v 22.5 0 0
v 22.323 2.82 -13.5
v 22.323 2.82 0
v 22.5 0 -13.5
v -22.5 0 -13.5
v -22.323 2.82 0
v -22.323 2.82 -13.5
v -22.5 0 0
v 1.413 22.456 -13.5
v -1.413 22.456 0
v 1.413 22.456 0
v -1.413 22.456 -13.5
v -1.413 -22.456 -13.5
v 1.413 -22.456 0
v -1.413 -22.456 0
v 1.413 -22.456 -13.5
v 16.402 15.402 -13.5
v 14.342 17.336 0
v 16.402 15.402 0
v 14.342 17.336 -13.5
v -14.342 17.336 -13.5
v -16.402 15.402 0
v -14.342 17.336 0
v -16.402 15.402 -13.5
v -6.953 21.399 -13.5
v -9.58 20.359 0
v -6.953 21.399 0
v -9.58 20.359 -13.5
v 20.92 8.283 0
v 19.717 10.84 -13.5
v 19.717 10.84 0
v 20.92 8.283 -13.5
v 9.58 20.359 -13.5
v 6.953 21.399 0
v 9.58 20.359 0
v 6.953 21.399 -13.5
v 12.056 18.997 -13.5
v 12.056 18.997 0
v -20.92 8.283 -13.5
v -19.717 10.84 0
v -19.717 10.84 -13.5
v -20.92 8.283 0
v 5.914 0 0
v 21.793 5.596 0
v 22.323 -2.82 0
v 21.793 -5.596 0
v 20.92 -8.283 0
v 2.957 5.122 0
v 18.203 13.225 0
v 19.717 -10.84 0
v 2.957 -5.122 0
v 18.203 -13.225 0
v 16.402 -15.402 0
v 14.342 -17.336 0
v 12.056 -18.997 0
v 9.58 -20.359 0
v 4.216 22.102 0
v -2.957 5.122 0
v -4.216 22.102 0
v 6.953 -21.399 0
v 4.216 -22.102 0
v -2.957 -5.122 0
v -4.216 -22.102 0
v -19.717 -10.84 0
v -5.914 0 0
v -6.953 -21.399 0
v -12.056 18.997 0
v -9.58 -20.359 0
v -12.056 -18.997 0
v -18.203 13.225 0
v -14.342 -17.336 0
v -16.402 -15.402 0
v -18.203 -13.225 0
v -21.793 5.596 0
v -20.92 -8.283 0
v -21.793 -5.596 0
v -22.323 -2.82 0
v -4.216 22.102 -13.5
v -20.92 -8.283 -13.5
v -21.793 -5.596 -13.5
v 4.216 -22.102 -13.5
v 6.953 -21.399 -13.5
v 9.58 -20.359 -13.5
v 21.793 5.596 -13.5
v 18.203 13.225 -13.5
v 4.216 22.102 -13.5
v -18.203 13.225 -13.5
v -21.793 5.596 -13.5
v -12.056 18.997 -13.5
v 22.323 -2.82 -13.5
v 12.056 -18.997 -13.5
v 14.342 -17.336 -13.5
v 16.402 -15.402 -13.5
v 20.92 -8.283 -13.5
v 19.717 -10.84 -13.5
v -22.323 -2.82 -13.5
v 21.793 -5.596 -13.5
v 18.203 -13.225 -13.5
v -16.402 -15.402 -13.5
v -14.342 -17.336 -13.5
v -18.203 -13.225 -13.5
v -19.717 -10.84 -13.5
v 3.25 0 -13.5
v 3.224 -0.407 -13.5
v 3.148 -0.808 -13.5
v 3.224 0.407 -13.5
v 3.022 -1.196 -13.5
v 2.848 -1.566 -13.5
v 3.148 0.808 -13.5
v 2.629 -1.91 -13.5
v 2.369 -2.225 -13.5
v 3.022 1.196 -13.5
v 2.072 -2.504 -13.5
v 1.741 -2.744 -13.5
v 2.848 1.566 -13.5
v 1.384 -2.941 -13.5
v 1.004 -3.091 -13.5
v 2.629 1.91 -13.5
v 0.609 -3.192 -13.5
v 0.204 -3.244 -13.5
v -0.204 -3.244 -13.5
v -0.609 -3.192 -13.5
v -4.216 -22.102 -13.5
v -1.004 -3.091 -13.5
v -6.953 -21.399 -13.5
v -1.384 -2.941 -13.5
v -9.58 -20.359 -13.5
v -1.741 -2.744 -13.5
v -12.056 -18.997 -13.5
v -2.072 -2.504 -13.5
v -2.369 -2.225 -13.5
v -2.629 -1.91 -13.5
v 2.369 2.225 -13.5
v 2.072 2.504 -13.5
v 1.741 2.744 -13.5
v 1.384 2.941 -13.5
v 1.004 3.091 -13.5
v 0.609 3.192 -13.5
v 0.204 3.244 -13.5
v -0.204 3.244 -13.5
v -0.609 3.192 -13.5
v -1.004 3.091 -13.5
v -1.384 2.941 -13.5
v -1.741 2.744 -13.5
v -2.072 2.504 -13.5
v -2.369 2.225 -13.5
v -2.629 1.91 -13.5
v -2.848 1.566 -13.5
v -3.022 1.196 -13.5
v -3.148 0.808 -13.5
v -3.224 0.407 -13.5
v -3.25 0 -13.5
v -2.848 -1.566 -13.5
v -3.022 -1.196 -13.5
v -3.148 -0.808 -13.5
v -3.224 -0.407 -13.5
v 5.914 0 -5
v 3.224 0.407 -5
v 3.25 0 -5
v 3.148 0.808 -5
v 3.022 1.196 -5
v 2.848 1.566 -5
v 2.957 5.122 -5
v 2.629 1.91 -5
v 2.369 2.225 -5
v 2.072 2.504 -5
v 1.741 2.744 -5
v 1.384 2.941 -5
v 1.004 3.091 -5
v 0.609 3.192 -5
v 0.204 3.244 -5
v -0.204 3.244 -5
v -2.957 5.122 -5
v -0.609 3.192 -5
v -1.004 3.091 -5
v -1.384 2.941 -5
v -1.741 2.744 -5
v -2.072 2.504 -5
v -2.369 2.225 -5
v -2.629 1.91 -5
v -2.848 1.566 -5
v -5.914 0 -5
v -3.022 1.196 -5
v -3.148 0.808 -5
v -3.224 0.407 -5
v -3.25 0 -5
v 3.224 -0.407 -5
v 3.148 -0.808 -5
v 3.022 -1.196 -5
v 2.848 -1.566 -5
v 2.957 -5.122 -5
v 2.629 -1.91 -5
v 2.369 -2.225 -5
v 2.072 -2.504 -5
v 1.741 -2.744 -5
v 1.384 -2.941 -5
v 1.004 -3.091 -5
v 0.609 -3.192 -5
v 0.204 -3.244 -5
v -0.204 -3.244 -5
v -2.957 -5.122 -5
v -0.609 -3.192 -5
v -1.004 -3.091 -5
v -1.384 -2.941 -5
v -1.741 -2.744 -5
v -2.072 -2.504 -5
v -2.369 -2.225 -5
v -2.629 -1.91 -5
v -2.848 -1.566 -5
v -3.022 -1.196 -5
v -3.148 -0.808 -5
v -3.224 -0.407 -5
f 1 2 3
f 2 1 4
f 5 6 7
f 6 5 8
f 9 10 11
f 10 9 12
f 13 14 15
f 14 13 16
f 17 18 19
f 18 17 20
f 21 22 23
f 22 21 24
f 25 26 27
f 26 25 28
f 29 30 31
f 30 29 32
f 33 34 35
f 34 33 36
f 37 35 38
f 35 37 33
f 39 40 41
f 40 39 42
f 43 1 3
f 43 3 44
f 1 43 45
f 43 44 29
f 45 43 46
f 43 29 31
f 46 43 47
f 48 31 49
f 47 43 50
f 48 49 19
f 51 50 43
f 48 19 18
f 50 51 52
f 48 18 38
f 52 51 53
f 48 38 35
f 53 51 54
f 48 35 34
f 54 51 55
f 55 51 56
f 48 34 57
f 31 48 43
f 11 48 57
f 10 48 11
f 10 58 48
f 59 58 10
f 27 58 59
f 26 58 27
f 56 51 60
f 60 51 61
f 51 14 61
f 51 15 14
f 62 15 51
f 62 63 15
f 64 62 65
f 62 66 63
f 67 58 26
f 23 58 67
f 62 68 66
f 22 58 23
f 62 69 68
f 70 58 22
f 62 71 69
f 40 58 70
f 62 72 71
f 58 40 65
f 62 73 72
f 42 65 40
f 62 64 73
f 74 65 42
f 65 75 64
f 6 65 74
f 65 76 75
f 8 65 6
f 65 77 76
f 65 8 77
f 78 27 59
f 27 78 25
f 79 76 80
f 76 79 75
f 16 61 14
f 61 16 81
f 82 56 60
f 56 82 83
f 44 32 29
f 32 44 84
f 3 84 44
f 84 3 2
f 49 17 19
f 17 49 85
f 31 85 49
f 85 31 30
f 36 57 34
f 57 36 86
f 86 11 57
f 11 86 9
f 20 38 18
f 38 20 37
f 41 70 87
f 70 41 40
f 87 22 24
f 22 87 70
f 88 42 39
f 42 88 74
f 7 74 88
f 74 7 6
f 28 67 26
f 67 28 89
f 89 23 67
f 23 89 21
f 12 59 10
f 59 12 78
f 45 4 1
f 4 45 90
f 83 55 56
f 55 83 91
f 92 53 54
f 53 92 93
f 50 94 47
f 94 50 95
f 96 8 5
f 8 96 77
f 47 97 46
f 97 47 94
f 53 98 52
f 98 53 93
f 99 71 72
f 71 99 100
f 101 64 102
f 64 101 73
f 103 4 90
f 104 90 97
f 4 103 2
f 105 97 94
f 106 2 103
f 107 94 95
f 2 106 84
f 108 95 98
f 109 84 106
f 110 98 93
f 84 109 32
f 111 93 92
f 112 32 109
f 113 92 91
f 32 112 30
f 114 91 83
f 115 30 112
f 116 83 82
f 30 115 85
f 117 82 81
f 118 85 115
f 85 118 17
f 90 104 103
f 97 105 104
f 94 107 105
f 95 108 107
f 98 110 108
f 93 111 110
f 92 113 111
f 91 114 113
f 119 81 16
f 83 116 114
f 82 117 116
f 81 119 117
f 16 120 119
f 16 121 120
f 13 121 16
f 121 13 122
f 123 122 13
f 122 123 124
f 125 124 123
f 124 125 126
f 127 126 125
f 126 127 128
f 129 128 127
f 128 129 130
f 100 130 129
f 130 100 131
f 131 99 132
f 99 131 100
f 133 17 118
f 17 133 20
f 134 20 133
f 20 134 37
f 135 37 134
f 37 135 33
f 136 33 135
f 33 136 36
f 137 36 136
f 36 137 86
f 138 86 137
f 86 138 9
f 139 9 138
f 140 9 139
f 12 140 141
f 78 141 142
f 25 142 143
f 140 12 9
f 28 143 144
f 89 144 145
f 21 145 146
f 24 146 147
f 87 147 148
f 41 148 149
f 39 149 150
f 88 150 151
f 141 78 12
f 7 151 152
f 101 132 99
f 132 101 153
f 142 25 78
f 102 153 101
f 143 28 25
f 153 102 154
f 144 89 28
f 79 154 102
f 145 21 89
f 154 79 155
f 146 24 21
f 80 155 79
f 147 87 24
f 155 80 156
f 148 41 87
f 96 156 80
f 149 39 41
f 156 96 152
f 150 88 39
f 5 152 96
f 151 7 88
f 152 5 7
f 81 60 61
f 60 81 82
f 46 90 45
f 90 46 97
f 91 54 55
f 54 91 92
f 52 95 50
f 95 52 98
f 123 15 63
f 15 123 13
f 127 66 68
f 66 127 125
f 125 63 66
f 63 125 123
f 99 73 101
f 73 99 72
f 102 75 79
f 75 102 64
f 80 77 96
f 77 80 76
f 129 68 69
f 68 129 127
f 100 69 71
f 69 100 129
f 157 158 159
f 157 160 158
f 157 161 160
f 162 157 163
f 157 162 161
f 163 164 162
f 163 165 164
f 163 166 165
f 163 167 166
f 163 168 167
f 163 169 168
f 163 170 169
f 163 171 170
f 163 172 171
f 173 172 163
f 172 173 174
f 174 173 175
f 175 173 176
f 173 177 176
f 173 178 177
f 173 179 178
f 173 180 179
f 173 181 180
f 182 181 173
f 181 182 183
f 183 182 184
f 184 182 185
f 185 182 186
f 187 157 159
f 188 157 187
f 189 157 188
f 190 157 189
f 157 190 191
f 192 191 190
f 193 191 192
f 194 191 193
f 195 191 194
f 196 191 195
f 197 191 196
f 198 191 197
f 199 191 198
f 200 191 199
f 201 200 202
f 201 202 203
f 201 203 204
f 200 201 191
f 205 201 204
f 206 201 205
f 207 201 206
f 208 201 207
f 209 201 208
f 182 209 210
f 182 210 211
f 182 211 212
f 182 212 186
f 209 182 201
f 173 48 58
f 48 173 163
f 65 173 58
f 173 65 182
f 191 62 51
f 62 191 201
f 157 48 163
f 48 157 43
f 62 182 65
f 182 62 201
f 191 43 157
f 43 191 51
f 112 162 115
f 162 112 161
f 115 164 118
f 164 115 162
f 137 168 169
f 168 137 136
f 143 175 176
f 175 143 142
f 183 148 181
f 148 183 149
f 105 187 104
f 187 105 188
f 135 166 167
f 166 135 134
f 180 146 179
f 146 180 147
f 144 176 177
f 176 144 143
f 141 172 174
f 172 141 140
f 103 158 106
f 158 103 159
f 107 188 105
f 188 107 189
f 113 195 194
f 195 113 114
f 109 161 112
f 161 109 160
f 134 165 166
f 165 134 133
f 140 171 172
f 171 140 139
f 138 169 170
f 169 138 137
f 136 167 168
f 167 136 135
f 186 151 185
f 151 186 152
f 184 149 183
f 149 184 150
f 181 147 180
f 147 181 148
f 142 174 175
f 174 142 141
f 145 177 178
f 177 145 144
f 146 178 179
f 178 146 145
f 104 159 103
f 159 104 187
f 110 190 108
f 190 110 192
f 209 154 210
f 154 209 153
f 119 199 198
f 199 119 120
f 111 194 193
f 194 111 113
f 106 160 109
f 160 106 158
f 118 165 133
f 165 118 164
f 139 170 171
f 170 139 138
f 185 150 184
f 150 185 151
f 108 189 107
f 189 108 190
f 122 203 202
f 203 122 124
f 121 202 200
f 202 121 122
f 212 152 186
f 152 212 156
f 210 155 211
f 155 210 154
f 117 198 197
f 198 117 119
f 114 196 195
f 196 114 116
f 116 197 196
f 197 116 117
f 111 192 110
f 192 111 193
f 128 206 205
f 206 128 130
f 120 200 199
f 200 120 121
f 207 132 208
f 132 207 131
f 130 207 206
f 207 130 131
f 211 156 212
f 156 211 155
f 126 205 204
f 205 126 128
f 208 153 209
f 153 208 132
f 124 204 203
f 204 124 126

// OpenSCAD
$fn = 50;


difference() {
	union() {
		translate(v = [0, 0, -13.5000000000]) {
			cylinder(h = 13.5000000000, r = 22.5000000000);
		}
		translate(v = [0, 0, -15.0000000000]) {
			cylinder(h = 15, r = 2.8750000000);
		}
	}
	union() {
		translate(v = [0, 0, 0]) {
			rotate(a = [0, 0, 0]) {
				difference() {
					union() {
						translate(v = [0, 0, -5]) {
							linear_extrude(height = 5) {
								polygon(points = [[5.9142500000, 0.0000000000], [2.9571250000, 5.1218907443], [-2.9571250000, 5.1218907443], [-5.9142500000, 0.0000000000], [-2.9571250000, -5.1218907443], [2.9571250000, -5.1218907443]]);
							}
						}
					}
					union();
				}
			}
		}
		#translate(v = [0, 0, -100.0000000000]) {
			cylinder(h = 200, r = 3.2500000000);
		}
	}
}
